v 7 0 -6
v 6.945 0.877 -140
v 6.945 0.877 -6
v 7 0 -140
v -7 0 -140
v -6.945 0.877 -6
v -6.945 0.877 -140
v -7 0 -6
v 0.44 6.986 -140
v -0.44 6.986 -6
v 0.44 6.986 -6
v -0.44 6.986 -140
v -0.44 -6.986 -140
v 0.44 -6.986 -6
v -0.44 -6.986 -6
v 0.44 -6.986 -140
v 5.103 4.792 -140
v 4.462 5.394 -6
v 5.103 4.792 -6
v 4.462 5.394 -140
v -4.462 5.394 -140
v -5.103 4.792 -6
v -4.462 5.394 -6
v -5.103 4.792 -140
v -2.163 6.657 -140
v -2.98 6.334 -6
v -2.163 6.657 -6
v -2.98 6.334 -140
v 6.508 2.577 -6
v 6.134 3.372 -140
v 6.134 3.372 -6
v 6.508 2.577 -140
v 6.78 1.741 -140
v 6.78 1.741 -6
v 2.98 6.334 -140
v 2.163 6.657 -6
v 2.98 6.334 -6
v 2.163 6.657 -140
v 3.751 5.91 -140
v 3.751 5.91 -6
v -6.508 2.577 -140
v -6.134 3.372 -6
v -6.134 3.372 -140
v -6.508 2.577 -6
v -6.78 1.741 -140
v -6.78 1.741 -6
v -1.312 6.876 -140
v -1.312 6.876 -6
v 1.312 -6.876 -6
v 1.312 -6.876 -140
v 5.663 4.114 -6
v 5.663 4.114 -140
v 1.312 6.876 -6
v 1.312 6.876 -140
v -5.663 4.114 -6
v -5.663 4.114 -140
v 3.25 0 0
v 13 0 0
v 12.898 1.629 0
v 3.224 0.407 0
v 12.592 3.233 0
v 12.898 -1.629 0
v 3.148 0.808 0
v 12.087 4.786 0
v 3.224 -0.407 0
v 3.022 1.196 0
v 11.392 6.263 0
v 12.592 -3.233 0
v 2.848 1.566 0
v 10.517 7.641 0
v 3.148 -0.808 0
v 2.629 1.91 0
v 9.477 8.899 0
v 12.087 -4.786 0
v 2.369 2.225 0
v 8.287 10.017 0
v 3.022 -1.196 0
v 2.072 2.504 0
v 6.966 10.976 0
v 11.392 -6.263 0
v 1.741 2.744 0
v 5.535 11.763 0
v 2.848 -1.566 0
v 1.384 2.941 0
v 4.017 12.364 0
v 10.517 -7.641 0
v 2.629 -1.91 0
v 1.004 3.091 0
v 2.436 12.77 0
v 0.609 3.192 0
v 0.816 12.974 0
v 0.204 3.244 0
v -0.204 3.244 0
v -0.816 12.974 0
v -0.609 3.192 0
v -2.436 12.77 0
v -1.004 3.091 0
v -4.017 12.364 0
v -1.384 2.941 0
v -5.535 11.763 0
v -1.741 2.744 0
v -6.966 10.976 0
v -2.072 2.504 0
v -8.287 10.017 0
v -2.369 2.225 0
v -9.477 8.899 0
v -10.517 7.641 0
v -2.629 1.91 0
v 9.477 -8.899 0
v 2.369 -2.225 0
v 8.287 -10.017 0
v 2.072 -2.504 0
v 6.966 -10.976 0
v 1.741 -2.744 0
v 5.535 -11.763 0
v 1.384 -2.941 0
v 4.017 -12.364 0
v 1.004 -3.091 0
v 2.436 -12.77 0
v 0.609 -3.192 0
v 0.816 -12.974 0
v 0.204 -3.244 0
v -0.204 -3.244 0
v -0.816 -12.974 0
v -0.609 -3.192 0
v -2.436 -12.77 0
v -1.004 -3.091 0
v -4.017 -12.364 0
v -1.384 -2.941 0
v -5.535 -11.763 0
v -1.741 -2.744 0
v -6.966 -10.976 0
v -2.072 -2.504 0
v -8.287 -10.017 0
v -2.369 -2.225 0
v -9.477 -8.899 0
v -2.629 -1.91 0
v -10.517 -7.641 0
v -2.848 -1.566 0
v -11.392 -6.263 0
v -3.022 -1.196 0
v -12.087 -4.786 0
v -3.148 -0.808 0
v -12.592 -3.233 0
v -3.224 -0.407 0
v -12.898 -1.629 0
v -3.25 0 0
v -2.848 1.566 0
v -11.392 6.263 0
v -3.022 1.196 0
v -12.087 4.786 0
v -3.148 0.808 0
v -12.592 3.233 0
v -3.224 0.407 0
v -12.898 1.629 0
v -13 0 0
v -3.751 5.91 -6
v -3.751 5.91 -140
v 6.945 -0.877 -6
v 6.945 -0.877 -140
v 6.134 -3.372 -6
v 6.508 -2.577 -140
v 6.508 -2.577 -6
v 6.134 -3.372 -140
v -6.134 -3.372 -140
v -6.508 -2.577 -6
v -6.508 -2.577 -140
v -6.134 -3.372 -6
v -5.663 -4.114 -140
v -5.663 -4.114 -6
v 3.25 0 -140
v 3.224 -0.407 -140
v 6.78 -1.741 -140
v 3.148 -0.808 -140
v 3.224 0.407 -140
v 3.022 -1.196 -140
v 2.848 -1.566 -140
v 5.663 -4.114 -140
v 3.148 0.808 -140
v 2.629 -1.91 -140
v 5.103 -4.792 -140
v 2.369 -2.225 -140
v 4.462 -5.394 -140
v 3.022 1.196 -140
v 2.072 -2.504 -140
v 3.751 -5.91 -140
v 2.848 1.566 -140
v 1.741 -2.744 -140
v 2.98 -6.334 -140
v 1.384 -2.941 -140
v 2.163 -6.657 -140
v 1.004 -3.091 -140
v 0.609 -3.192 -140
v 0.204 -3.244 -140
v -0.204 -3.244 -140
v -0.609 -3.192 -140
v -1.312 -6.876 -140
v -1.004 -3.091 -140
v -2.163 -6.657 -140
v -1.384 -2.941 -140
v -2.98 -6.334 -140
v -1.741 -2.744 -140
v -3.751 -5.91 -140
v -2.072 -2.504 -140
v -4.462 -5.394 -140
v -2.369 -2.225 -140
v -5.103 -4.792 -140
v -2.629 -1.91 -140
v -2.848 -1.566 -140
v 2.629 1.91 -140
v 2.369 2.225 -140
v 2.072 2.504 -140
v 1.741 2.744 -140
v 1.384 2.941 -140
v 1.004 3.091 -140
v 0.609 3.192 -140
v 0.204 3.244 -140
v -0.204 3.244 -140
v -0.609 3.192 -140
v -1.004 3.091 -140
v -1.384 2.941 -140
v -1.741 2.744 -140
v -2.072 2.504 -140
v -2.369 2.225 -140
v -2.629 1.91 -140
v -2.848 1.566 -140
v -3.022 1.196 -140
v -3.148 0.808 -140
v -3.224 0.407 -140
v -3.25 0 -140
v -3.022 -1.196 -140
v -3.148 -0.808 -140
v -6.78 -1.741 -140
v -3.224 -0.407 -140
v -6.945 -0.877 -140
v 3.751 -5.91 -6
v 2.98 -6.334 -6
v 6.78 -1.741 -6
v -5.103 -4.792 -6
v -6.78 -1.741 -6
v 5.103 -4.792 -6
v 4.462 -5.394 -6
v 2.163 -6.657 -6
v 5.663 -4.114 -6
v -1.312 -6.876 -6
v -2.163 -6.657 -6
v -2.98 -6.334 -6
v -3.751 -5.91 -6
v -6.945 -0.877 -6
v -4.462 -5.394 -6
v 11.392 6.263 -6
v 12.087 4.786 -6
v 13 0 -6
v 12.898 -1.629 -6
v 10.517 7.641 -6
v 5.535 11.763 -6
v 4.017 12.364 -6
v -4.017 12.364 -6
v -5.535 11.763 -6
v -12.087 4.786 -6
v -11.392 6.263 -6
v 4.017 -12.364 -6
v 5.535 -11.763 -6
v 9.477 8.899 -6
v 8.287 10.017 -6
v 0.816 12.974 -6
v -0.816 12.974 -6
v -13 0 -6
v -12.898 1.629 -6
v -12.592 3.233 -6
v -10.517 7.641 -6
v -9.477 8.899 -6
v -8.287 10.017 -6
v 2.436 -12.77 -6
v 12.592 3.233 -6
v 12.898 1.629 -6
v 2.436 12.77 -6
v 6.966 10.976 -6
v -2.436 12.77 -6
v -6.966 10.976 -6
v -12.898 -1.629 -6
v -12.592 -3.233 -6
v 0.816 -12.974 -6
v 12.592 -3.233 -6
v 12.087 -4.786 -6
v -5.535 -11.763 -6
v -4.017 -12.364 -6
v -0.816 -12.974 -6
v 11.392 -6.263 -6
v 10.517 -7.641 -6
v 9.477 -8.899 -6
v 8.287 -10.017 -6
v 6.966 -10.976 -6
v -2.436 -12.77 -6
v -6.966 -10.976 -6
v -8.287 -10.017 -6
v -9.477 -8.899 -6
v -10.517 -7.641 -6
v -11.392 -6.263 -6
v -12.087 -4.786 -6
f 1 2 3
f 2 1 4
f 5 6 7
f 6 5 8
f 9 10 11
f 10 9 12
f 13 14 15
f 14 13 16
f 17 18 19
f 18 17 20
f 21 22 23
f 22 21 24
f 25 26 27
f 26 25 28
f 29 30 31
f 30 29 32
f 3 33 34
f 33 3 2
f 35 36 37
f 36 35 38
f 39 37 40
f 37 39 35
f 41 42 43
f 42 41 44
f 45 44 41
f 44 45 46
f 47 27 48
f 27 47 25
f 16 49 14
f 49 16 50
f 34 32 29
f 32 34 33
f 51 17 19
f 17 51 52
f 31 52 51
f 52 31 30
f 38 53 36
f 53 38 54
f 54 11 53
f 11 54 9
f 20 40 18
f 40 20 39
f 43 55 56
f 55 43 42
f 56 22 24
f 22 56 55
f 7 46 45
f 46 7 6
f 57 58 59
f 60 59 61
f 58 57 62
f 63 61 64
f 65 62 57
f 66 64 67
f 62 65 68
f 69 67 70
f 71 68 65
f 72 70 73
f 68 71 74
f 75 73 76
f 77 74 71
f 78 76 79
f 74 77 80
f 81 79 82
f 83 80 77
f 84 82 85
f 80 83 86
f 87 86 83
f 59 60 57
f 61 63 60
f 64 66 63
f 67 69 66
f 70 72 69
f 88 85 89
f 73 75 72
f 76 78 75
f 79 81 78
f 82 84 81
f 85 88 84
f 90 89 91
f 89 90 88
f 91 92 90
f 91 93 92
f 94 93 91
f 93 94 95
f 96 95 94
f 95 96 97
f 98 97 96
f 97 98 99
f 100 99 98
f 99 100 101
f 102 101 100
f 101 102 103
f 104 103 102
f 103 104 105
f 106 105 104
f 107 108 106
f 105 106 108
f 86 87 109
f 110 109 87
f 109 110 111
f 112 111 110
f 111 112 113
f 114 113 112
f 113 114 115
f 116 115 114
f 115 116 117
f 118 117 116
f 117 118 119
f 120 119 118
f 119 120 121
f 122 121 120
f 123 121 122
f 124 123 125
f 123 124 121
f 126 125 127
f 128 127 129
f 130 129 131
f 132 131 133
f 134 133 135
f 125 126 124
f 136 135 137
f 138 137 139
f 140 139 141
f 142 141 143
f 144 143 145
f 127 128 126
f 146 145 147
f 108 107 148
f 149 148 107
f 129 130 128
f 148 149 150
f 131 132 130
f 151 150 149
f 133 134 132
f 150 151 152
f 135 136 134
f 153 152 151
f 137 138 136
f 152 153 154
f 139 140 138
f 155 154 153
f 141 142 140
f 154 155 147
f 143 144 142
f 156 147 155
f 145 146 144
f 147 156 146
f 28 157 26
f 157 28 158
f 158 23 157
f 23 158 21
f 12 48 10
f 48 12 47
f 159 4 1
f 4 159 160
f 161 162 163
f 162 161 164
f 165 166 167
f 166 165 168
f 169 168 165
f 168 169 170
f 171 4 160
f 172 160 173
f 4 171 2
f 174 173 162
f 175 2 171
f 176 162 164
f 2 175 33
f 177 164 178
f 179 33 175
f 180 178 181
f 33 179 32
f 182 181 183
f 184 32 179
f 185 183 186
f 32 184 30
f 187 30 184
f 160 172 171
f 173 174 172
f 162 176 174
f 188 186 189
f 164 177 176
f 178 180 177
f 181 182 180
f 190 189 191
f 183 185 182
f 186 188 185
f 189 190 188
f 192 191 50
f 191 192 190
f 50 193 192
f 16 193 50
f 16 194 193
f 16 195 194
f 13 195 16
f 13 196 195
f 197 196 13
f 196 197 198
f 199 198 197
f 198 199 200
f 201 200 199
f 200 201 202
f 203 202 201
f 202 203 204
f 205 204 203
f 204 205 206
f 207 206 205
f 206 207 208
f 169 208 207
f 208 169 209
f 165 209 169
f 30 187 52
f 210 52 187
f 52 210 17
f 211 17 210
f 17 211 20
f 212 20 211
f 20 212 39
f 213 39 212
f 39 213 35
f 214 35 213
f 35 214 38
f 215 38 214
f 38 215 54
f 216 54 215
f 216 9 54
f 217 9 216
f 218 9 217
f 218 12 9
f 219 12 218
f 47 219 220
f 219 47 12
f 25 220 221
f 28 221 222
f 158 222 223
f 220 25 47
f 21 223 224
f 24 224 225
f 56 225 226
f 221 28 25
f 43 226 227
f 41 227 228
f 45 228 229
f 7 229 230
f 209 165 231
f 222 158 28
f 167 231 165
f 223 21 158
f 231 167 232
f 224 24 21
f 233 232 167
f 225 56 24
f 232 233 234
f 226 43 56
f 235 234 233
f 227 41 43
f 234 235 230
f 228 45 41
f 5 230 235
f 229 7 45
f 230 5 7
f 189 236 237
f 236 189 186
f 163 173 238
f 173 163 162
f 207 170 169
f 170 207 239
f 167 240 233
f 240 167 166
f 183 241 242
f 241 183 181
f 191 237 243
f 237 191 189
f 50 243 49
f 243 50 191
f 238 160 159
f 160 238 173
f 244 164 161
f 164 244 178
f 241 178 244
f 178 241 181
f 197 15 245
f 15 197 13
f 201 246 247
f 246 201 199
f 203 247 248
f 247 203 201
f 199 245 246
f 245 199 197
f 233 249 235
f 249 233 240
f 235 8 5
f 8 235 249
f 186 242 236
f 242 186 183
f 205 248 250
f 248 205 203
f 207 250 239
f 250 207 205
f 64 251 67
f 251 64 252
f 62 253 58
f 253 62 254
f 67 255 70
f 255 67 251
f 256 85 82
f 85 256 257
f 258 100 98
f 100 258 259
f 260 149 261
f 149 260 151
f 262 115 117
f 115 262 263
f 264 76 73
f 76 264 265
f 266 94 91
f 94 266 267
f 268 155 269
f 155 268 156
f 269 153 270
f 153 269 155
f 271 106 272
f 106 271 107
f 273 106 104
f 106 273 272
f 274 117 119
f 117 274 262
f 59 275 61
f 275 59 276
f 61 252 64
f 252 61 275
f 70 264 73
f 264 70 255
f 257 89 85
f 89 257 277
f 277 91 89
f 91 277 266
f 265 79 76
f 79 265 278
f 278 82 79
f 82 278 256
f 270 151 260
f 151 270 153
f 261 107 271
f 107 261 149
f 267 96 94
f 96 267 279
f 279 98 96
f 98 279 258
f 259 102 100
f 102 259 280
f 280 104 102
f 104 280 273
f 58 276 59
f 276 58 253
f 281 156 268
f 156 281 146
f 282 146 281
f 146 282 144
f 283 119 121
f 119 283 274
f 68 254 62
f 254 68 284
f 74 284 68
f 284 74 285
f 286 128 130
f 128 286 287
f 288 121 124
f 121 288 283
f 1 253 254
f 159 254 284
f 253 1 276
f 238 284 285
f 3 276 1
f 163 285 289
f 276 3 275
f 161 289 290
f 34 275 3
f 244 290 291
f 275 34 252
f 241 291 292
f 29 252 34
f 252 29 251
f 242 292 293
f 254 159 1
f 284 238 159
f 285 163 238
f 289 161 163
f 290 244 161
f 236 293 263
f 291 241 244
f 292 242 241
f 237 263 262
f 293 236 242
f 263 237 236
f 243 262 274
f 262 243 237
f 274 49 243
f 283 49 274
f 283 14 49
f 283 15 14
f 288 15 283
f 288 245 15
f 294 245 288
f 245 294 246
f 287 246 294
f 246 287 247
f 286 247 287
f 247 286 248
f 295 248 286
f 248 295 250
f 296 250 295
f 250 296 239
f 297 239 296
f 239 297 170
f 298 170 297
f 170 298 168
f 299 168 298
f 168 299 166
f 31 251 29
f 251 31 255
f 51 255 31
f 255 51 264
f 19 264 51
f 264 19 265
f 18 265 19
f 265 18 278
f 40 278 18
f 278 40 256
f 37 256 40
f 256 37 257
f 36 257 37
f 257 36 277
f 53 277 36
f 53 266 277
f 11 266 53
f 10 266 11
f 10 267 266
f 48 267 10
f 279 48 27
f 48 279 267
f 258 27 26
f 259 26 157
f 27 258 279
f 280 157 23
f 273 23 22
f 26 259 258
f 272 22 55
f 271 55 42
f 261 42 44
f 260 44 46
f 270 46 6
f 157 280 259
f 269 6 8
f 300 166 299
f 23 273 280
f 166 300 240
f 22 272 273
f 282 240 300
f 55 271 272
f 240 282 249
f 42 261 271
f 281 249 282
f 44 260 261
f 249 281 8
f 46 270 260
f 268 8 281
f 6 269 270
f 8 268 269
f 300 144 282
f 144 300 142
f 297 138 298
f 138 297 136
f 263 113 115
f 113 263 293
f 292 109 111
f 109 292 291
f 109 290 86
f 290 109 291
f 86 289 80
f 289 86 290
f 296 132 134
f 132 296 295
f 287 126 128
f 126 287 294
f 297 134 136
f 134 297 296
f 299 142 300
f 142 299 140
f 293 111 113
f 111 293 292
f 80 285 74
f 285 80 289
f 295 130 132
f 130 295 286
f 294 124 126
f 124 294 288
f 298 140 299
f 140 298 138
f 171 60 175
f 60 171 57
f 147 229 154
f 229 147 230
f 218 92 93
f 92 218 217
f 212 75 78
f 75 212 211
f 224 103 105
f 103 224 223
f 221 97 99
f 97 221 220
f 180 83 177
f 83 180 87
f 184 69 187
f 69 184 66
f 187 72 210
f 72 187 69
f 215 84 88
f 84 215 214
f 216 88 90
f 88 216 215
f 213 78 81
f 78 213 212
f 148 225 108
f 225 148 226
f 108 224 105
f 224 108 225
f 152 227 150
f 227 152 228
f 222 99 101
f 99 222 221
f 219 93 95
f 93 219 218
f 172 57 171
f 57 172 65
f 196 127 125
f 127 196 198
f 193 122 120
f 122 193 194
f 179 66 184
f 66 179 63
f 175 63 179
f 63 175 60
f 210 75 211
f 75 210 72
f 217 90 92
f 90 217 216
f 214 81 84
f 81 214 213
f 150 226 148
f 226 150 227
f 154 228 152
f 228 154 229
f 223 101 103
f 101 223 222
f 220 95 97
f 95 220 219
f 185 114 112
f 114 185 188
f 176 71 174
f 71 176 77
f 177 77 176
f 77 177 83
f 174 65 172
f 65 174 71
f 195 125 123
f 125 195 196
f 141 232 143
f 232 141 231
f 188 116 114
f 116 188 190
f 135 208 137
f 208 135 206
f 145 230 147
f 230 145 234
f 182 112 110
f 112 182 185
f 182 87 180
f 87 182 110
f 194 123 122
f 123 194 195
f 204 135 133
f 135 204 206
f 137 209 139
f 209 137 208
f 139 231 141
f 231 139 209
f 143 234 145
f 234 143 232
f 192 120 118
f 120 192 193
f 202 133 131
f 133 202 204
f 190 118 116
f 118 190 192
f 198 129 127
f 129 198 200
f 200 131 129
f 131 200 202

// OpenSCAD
$fn = 50;


difference() {
	union() {
		translate(v = [0, 0, -140.0000000000]) {
			cylinder(h = 140, r = 7.0000000000);
		}
		translate(v = [0, 0, -6.0000000000]) {
			cylinder(h = 6, r = 13.0000000000);
		}
	}
	union() {
		#translate(v = [0, 0, -140]) {
			cylinder(h = 140, r = 3.2500000000);
		}
	}
}
